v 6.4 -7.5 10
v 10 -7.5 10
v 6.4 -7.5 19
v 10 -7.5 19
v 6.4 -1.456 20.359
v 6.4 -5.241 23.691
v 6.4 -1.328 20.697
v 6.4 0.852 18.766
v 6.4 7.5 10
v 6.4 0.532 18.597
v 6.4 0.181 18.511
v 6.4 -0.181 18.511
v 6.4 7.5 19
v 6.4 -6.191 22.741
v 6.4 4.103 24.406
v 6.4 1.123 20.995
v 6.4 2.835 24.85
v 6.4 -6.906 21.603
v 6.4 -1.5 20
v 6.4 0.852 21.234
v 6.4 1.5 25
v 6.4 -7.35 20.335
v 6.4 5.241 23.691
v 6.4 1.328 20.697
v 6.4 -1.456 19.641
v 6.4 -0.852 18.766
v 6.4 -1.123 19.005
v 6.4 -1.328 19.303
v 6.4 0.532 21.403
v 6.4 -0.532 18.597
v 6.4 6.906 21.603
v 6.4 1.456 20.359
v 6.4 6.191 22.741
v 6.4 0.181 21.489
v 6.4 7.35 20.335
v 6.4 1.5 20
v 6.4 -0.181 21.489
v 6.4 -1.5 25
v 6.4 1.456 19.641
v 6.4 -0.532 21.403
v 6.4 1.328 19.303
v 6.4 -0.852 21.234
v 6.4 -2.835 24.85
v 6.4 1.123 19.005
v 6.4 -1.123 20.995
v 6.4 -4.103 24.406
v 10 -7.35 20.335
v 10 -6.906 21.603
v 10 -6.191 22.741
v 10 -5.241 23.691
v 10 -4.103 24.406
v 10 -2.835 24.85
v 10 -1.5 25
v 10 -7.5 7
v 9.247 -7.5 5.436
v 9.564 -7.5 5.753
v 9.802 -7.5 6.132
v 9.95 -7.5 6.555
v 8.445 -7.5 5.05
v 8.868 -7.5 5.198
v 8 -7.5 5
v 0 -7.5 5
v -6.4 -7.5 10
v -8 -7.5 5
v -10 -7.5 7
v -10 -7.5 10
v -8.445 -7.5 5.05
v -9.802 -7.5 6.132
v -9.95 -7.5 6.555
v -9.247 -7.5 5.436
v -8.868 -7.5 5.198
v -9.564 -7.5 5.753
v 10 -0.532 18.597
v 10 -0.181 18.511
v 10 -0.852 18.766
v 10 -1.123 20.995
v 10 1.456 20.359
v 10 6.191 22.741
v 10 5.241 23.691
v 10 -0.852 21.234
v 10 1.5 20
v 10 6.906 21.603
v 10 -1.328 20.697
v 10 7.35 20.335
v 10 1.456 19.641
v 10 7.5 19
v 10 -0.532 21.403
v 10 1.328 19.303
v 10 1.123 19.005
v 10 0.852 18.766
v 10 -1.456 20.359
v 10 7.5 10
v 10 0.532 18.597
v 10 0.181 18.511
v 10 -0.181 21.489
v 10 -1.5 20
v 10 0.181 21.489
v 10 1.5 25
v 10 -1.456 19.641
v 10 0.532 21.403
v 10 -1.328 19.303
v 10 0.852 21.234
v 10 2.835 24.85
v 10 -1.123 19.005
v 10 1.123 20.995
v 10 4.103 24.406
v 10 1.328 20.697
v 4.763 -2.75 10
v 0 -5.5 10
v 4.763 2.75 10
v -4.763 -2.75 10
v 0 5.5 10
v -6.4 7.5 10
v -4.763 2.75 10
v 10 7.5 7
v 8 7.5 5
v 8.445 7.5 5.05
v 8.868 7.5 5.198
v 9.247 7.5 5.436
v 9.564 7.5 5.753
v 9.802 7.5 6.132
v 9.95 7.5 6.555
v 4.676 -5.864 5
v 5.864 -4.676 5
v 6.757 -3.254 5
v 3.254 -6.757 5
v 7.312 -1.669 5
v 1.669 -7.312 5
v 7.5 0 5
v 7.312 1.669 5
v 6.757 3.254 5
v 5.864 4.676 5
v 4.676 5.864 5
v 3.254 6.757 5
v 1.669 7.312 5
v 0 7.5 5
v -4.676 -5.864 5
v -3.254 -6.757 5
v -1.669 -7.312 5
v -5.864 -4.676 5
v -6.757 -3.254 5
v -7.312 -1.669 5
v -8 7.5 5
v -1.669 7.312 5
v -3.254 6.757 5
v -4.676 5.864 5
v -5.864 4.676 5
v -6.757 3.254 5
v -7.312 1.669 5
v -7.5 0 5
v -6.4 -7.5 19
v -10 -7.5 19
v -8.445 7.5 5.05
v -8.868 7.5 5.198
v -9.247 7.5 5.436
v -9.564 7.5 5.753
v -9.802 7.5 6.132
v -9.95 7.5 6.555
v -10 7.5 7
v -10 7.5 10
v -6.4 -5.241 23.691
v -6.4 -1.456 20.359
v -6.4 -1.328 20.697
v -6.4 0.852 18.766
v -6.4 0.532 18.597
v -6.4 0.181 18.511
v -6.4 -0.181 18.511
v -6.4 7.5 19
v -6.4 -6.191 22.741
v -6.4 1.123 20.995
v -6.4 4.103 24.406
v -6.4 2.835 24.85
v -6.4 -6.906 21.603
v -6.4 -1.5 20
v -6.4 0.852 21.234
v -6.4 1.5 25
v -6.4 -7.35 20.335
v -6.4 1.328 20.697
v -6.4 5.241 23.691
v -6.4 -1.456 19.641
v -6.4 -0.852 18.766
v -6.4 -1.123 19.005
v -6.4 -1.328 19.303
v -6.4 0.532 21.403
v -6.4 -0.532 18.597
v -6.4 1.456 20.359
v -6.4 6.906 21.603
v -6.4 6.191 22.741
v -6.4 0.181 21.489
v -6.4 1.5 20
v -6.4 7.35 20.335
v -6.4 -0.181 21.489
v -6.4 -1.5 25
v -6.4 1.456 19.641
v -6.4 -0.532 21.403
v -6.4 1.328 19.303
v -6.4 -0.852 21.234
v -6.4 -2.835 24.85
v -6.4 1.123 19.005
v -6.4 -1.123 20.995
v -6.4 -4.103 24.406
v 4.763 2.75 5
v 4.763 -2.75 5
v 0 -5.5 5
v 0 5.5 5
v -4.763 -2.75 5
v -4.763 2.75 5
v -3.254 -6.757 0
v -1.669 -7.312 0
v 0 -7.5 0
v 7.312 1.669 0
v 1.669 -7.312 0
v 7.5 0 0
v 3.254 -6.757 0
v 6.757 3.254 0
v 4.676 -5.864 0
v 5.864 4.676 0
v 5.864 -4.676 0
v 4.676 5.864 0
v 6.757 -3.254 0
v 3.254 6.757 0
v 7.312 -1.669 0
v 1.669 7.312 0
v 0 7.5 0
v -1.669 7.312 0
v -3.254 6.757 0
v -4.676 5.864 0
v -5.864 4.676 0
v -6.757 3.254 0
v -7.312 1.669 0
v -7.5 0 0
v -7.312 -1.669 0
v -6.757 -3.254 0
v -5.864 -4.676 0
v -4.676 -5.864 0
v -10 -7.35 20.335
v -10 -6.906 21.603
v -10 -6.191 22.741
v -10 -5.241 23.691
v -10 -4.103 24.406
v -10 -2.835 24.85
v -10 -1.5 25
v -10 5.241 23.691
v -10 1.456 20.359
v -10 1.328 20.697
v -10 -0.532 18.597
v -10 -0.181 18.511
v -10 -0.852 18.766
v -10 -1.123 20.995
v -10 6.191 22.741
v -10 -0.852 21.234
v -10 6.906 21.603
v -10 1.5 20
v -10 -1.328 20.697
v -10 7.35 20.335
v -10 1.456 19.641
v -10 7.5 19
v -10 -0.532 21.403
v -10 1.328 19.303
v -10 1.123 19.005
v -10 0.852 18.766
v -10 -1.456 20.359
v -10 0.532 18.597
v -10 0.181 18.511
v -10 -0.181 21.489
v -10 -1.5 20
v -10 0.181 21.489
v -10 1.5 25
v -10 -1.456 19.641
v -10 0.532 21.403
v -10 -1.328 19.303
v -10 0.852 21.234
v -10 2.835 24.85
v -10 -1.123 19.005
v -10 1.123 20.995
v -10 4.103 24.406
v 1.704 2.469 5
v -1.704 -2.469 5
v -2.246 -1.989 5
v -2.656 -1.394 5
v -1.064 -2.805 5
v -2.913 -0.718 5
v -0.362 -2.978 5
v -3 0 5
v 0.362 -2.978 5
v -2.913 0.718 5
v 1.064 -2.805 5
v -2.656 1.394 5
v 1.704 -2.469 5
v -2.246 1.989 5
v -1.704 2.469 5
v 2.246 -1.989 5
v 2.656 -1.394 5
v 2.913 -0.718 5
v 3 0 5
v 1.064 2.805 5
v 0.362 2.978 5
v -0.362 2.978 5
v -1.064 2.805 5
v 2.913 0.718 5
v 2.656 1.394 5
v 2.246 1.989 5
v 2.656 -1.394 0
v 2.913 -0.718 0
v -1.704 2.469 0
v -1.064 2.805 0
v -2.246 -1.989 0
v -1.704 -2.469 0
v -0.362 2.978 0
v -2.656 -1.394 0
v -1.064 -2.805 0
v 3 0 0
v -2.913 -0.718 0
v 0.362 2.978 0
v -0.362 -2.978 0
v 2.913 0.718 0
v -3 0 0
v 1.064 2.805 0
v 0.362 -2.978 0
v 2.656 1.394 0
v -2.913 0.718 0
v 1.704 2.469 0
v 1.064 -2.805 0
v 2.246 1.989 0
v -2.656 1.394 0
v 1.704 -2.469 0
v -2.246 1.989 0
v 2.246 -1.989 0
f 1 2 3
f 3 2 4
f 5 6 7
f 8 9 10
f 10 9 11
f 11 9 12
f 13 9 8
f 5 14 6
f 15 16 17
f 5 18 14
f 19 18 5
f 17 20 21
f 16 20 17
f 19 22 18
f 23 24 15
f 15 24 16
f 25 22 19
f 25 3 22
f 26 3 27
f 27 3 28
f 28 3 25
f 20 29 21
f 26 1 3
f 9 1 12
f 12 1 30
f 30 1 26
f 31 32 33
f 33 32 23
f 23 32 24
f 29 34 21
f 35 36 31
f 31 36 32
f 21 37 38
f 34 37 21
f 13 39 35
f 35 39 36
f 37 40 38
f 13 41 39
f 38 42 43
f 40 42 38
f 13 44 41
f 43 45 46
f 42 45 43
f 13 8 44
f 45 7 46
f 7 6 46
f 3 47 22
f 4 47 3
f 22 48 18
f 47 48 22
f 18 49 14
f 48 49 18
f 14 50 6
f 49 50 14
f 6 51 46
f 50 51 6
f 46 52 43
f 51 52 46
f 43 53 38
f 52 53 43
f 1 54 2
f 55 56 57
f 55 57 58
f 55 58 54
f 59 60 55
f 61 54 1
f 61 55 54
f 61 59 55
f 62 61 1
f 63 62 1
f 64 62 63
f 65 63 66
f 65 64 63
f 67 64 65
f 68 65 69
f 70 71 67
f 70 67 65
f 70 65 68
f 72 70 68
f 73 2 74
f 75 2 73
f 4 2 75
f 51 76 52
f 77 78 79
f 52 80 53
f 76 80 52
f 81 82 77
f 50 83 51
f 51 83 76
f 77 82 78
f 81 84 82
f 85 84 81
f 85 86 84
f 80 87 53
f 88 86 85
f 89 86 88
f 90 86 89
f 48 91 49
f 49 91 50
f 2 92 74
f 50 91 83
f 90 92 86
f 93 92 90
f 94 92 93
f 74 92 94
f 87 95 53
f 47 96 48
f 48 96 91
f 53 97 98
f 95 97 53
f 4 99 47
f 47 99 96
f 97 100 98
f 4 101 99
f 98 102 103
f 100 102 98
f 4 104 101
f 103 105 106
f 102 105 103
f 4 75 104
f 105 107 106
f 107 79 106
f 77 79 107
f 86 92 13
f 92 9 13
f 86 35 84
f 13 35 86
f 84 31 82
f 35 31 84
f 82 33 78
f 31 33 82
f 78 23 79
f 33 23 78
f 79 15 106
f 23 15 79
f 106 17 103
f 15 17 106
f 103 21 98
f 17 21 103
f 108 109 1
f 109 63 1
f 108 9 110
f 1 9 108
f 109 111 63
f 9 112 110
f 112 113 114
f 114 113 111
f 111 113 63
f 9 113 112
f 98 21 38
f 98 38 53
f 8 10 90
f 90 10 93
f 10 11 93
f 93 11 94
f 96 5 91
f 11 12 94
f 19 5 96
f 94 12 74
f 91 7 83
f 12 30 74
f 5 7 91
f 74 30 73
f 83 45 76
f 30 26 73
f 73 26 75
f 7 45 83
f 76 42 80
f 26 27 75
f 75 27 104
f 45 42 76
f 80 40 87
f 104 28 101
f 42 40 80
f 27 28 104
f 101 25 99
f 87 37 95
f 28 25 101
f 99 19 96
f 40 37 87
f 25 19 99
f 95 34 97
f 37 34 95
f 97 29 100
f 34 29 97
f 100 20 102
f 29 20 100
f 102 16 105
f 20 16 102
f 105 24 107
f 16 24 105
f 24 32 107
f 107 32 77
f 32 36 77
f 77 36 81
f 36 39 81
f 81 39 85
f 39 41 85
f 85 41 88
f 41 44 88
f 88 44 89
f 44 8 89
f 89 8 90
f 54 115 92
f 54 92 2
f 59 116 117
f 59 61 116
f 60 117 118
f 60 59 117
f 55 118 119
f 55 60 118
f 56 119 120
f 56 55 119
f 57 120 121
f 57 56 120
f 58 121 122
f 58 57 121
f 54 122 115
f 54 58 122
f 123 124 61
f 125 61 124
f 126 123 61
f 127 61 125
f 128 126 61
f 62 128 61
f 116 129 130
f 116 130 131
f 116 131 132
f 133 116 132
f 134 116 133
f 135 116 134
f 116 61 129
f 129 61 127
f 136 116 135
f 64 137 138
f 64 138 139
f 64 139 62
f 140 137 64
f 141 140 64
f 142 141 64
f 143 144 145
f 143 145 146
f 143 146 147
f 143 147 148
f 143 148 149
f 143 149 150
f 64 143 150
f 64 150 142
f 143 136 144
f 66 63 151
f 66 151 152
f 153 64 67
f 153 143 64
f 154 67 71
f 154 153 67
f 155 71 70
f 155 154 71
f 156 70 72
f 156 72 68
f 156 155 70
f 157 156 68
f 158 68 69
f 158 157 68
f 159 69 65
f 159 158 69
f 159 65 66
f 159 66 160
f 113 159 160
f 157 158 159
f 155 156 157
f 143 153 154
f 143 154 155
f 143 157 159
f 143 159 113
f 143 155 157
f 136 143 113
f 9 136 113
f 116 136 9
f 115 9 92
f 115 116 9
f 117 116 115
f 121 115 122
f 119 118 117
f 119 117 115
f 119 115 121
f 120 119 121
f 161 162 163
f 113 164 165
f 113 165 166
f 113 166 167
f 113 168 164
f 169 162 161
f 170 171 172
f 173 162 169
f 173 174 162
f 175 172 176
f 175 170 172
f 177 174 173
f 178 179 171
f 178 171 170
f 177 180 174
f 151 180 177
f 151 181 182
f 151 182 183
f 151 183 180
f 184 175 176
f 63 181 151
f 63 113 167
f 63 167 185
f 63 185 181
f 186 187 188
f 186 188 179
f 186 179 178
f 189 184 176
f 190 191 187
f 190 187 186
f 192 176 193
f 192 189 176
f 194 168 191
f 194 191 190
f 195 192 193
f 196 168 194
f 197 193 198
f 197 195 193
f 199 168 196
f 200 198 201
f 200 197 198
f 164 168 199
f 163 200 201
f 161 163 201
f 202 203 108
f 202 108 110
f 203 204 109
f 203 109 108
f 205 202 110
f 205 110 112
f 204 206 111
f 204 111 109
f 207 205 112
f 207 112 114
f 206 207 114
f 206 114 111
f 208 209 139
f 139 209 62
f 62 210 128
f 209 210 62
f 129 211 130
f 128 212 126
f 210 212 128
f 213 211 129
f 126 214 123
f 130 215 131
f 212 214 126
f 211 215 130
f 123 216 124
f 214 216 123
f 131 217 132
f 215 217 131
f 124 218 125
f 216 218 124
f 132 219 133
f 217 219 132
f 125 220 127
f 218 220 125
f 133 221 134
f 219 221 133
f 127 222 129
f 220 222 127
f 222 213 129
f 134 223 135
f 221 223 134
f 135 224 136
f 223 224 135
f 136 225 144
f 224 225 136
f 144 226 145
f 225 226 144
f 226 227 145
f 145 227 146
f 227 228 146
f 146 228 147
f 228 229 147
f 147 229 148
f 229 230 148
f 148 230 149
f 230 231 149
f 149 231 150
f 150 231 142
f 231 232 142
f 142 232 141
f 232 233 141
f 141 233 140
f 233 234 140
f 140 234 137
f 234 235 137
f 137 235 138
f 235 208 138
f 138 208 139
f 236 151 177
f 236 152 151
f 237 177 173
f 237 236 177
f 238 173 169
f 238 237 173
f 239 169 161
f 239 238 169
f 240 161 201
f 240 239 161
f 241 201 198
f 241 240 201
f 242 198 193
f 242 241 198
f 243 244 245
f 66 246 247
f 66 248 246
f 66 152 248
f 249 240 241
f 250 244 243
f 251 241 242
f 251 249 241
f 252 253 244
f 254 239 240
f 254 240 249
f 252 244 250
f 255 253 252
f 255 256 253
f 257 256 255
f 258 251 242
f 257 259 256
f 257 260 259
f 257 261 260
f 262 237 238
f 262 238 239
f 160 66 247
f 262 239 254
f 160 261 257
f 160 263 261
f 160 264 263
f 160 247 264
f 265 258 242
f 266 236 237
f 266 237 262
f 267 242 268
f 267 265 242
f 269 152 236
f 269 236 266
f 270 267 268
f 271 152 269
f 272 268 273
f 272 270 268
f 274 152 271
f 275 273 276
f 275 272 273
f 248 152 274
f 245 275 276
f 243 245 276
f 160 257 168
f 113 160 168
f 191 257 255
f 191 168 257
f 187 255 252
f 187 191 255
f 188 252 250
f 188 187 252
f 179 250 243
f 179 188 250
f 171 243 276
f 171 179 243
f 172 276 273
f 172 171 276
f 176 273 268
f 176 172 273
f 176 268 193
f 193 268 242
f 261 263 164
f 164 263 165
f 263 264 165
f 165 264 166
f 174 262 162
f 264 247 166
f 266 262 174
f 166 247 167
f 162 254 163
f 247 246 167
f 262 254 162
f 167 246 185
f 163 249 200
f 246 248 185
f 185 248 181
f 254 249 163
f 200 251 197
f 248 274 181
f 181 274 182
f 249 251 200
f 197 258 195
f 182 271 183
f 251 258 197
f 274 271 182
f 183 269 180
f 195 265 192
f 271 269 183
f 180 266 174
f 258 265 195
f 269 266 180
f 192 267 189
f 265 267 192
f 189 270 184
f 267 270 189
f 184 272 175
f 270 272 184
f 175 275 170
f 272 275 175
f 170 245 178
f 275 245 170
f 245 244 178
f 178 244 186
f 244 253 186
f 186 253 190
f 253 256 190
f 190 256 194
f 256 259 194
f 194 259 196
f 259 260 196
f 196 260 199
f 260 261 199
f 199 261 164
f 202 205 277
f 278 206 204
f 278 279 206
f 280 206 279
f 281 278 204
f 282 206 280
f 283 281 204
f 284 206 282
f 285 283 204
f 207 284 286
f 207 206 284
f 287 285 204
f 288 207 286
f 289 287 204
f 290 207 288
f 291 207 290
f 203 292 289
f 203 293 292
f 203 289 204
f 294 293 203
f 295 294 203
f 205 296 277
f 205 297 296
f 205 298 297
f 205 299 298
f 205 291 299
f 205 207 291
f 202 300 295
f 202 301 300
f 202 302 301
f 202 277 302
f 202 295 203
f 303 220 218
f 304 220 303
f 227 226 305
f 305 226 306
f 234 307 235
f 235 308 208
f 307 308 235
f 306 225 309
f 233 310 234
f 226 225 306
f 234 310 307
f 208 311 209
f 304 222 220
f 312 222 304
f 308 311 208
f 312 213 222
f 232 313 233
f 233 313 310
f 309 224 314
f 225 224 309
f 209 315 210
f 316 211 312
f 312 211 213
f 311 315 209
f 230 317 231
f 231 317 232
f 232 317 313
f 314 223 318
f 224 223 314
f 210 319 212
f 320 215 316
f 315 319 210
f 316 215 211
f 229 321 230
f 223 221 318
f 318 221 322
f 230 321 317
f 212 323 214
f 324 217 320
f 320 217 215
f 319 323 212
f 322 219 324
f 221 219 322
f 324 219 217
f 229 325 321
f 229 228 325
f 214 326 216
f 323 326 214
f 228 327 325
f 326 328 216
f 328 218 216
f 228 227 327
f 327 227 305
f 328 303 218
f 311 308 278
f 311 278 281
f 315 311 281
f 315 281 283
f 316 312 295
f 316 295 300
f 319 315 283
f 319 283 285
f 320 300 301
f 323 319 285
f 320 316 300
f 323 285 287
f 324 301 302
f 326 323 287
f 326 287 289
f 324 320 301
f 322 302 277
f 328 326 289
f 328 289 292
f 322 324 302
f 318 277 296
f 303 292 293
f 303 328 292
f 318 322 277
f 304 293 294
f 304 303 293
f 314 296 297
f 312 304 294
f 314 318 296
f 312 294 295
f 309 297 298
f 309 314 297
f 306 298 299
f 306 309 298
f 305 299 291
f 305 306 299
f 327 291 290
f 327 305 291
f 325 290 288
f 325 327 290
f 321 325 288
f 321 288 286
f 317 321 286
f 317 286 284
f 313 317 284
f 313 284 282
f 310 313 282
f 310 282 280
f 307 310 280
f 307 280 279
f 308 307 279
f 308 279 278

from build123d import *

# Parameters (mm, degrees)
SKETCH_R     = 7.5
SKETCH_R_2   = 3
PAD_DEPTH    = 5
SKETCH001_W  = 20
SKETCH001_H  = 15
PAD001_DEPTH = 5
SKETCH002_W  = 3.6
SKETCH002_H  = 15
PAD002_DEPTH = 15
SKETCH003_R  = 1.5
POCKET_DEPTH = 20.001
FILLET_R     = 2
FILLET001_R  = 6


with BuildPart() as part:
    # Sketch → Pad (new body)
    with BuildSketch(Plane.XY):
        Circle(SKETCH_R)
        Circle(SKETCH_R_2, mode=Mode.SUBTRACT)
    extrude(amount=PAD_DEPTH)

    # Sketch001 (on Face4 of Pad) → Pad001 (join)
    with BuildSketch(Plane.XY.offset(5)):
        Rectangle(SKETCH001_W, SKETCH001_H)
        Polygon((4.76314, -2.75), (4.76314, 2.75), (0, 5.5), (-4.76314, 2.75), (-4.76314, -2.75), (0, -5.5), align=None, mode=Mode.SUBTRACT)
    extrude(amount=PAD001_DEPTH)

    # Sketch002 (on Face11 of Pad001) → Pad002 (join)
    with BuildSketch(Plane.XY.offset(10)):
        with Locations((-8.2, 0)):
            Rectangle(SKETCH002_W, SKETCH002_H)
        with Locations((8.2, 0)):
            Rectangle(SKETCH002_W, SKETCH002_H)
    extrude(amount=PAD002_DEPTH)

    # Sketch003 (on Face17 of Pad002) → Pocket (cut, through all)
    with BuildSketch(Plane(origin=(-10, 0, 0), x_dir=(0, -1, 0), z_dir=(-1, 0, 0))):
        with Locations((0, 20)):
            Circle(SKETCH003_R)
    extrude(amount=-POCKET_DEPTH, mode=Mode.SUBTRACT)

    # Fillet
    fillet_edges = [part.edges().sort_by_distance(p)[0] for p in [
        (-10, 0, 5),
        (10, 0, 5),
    ]]
    fillet(fillet_edges, radius=FILLET_R)

    # Fillet001
    fillet001_edges = [part.edges().sort_by_distance(p)[0] for p in [
        (-8.2, -7.5, 25),
        (-8.2, 7.5, 25),
        (8.2, 7.5, 25),
        (8.2, -7.5, 25),
    ]]
    fillet(fillet001_edges, radius=FILLET001_R)


solid = part.part
